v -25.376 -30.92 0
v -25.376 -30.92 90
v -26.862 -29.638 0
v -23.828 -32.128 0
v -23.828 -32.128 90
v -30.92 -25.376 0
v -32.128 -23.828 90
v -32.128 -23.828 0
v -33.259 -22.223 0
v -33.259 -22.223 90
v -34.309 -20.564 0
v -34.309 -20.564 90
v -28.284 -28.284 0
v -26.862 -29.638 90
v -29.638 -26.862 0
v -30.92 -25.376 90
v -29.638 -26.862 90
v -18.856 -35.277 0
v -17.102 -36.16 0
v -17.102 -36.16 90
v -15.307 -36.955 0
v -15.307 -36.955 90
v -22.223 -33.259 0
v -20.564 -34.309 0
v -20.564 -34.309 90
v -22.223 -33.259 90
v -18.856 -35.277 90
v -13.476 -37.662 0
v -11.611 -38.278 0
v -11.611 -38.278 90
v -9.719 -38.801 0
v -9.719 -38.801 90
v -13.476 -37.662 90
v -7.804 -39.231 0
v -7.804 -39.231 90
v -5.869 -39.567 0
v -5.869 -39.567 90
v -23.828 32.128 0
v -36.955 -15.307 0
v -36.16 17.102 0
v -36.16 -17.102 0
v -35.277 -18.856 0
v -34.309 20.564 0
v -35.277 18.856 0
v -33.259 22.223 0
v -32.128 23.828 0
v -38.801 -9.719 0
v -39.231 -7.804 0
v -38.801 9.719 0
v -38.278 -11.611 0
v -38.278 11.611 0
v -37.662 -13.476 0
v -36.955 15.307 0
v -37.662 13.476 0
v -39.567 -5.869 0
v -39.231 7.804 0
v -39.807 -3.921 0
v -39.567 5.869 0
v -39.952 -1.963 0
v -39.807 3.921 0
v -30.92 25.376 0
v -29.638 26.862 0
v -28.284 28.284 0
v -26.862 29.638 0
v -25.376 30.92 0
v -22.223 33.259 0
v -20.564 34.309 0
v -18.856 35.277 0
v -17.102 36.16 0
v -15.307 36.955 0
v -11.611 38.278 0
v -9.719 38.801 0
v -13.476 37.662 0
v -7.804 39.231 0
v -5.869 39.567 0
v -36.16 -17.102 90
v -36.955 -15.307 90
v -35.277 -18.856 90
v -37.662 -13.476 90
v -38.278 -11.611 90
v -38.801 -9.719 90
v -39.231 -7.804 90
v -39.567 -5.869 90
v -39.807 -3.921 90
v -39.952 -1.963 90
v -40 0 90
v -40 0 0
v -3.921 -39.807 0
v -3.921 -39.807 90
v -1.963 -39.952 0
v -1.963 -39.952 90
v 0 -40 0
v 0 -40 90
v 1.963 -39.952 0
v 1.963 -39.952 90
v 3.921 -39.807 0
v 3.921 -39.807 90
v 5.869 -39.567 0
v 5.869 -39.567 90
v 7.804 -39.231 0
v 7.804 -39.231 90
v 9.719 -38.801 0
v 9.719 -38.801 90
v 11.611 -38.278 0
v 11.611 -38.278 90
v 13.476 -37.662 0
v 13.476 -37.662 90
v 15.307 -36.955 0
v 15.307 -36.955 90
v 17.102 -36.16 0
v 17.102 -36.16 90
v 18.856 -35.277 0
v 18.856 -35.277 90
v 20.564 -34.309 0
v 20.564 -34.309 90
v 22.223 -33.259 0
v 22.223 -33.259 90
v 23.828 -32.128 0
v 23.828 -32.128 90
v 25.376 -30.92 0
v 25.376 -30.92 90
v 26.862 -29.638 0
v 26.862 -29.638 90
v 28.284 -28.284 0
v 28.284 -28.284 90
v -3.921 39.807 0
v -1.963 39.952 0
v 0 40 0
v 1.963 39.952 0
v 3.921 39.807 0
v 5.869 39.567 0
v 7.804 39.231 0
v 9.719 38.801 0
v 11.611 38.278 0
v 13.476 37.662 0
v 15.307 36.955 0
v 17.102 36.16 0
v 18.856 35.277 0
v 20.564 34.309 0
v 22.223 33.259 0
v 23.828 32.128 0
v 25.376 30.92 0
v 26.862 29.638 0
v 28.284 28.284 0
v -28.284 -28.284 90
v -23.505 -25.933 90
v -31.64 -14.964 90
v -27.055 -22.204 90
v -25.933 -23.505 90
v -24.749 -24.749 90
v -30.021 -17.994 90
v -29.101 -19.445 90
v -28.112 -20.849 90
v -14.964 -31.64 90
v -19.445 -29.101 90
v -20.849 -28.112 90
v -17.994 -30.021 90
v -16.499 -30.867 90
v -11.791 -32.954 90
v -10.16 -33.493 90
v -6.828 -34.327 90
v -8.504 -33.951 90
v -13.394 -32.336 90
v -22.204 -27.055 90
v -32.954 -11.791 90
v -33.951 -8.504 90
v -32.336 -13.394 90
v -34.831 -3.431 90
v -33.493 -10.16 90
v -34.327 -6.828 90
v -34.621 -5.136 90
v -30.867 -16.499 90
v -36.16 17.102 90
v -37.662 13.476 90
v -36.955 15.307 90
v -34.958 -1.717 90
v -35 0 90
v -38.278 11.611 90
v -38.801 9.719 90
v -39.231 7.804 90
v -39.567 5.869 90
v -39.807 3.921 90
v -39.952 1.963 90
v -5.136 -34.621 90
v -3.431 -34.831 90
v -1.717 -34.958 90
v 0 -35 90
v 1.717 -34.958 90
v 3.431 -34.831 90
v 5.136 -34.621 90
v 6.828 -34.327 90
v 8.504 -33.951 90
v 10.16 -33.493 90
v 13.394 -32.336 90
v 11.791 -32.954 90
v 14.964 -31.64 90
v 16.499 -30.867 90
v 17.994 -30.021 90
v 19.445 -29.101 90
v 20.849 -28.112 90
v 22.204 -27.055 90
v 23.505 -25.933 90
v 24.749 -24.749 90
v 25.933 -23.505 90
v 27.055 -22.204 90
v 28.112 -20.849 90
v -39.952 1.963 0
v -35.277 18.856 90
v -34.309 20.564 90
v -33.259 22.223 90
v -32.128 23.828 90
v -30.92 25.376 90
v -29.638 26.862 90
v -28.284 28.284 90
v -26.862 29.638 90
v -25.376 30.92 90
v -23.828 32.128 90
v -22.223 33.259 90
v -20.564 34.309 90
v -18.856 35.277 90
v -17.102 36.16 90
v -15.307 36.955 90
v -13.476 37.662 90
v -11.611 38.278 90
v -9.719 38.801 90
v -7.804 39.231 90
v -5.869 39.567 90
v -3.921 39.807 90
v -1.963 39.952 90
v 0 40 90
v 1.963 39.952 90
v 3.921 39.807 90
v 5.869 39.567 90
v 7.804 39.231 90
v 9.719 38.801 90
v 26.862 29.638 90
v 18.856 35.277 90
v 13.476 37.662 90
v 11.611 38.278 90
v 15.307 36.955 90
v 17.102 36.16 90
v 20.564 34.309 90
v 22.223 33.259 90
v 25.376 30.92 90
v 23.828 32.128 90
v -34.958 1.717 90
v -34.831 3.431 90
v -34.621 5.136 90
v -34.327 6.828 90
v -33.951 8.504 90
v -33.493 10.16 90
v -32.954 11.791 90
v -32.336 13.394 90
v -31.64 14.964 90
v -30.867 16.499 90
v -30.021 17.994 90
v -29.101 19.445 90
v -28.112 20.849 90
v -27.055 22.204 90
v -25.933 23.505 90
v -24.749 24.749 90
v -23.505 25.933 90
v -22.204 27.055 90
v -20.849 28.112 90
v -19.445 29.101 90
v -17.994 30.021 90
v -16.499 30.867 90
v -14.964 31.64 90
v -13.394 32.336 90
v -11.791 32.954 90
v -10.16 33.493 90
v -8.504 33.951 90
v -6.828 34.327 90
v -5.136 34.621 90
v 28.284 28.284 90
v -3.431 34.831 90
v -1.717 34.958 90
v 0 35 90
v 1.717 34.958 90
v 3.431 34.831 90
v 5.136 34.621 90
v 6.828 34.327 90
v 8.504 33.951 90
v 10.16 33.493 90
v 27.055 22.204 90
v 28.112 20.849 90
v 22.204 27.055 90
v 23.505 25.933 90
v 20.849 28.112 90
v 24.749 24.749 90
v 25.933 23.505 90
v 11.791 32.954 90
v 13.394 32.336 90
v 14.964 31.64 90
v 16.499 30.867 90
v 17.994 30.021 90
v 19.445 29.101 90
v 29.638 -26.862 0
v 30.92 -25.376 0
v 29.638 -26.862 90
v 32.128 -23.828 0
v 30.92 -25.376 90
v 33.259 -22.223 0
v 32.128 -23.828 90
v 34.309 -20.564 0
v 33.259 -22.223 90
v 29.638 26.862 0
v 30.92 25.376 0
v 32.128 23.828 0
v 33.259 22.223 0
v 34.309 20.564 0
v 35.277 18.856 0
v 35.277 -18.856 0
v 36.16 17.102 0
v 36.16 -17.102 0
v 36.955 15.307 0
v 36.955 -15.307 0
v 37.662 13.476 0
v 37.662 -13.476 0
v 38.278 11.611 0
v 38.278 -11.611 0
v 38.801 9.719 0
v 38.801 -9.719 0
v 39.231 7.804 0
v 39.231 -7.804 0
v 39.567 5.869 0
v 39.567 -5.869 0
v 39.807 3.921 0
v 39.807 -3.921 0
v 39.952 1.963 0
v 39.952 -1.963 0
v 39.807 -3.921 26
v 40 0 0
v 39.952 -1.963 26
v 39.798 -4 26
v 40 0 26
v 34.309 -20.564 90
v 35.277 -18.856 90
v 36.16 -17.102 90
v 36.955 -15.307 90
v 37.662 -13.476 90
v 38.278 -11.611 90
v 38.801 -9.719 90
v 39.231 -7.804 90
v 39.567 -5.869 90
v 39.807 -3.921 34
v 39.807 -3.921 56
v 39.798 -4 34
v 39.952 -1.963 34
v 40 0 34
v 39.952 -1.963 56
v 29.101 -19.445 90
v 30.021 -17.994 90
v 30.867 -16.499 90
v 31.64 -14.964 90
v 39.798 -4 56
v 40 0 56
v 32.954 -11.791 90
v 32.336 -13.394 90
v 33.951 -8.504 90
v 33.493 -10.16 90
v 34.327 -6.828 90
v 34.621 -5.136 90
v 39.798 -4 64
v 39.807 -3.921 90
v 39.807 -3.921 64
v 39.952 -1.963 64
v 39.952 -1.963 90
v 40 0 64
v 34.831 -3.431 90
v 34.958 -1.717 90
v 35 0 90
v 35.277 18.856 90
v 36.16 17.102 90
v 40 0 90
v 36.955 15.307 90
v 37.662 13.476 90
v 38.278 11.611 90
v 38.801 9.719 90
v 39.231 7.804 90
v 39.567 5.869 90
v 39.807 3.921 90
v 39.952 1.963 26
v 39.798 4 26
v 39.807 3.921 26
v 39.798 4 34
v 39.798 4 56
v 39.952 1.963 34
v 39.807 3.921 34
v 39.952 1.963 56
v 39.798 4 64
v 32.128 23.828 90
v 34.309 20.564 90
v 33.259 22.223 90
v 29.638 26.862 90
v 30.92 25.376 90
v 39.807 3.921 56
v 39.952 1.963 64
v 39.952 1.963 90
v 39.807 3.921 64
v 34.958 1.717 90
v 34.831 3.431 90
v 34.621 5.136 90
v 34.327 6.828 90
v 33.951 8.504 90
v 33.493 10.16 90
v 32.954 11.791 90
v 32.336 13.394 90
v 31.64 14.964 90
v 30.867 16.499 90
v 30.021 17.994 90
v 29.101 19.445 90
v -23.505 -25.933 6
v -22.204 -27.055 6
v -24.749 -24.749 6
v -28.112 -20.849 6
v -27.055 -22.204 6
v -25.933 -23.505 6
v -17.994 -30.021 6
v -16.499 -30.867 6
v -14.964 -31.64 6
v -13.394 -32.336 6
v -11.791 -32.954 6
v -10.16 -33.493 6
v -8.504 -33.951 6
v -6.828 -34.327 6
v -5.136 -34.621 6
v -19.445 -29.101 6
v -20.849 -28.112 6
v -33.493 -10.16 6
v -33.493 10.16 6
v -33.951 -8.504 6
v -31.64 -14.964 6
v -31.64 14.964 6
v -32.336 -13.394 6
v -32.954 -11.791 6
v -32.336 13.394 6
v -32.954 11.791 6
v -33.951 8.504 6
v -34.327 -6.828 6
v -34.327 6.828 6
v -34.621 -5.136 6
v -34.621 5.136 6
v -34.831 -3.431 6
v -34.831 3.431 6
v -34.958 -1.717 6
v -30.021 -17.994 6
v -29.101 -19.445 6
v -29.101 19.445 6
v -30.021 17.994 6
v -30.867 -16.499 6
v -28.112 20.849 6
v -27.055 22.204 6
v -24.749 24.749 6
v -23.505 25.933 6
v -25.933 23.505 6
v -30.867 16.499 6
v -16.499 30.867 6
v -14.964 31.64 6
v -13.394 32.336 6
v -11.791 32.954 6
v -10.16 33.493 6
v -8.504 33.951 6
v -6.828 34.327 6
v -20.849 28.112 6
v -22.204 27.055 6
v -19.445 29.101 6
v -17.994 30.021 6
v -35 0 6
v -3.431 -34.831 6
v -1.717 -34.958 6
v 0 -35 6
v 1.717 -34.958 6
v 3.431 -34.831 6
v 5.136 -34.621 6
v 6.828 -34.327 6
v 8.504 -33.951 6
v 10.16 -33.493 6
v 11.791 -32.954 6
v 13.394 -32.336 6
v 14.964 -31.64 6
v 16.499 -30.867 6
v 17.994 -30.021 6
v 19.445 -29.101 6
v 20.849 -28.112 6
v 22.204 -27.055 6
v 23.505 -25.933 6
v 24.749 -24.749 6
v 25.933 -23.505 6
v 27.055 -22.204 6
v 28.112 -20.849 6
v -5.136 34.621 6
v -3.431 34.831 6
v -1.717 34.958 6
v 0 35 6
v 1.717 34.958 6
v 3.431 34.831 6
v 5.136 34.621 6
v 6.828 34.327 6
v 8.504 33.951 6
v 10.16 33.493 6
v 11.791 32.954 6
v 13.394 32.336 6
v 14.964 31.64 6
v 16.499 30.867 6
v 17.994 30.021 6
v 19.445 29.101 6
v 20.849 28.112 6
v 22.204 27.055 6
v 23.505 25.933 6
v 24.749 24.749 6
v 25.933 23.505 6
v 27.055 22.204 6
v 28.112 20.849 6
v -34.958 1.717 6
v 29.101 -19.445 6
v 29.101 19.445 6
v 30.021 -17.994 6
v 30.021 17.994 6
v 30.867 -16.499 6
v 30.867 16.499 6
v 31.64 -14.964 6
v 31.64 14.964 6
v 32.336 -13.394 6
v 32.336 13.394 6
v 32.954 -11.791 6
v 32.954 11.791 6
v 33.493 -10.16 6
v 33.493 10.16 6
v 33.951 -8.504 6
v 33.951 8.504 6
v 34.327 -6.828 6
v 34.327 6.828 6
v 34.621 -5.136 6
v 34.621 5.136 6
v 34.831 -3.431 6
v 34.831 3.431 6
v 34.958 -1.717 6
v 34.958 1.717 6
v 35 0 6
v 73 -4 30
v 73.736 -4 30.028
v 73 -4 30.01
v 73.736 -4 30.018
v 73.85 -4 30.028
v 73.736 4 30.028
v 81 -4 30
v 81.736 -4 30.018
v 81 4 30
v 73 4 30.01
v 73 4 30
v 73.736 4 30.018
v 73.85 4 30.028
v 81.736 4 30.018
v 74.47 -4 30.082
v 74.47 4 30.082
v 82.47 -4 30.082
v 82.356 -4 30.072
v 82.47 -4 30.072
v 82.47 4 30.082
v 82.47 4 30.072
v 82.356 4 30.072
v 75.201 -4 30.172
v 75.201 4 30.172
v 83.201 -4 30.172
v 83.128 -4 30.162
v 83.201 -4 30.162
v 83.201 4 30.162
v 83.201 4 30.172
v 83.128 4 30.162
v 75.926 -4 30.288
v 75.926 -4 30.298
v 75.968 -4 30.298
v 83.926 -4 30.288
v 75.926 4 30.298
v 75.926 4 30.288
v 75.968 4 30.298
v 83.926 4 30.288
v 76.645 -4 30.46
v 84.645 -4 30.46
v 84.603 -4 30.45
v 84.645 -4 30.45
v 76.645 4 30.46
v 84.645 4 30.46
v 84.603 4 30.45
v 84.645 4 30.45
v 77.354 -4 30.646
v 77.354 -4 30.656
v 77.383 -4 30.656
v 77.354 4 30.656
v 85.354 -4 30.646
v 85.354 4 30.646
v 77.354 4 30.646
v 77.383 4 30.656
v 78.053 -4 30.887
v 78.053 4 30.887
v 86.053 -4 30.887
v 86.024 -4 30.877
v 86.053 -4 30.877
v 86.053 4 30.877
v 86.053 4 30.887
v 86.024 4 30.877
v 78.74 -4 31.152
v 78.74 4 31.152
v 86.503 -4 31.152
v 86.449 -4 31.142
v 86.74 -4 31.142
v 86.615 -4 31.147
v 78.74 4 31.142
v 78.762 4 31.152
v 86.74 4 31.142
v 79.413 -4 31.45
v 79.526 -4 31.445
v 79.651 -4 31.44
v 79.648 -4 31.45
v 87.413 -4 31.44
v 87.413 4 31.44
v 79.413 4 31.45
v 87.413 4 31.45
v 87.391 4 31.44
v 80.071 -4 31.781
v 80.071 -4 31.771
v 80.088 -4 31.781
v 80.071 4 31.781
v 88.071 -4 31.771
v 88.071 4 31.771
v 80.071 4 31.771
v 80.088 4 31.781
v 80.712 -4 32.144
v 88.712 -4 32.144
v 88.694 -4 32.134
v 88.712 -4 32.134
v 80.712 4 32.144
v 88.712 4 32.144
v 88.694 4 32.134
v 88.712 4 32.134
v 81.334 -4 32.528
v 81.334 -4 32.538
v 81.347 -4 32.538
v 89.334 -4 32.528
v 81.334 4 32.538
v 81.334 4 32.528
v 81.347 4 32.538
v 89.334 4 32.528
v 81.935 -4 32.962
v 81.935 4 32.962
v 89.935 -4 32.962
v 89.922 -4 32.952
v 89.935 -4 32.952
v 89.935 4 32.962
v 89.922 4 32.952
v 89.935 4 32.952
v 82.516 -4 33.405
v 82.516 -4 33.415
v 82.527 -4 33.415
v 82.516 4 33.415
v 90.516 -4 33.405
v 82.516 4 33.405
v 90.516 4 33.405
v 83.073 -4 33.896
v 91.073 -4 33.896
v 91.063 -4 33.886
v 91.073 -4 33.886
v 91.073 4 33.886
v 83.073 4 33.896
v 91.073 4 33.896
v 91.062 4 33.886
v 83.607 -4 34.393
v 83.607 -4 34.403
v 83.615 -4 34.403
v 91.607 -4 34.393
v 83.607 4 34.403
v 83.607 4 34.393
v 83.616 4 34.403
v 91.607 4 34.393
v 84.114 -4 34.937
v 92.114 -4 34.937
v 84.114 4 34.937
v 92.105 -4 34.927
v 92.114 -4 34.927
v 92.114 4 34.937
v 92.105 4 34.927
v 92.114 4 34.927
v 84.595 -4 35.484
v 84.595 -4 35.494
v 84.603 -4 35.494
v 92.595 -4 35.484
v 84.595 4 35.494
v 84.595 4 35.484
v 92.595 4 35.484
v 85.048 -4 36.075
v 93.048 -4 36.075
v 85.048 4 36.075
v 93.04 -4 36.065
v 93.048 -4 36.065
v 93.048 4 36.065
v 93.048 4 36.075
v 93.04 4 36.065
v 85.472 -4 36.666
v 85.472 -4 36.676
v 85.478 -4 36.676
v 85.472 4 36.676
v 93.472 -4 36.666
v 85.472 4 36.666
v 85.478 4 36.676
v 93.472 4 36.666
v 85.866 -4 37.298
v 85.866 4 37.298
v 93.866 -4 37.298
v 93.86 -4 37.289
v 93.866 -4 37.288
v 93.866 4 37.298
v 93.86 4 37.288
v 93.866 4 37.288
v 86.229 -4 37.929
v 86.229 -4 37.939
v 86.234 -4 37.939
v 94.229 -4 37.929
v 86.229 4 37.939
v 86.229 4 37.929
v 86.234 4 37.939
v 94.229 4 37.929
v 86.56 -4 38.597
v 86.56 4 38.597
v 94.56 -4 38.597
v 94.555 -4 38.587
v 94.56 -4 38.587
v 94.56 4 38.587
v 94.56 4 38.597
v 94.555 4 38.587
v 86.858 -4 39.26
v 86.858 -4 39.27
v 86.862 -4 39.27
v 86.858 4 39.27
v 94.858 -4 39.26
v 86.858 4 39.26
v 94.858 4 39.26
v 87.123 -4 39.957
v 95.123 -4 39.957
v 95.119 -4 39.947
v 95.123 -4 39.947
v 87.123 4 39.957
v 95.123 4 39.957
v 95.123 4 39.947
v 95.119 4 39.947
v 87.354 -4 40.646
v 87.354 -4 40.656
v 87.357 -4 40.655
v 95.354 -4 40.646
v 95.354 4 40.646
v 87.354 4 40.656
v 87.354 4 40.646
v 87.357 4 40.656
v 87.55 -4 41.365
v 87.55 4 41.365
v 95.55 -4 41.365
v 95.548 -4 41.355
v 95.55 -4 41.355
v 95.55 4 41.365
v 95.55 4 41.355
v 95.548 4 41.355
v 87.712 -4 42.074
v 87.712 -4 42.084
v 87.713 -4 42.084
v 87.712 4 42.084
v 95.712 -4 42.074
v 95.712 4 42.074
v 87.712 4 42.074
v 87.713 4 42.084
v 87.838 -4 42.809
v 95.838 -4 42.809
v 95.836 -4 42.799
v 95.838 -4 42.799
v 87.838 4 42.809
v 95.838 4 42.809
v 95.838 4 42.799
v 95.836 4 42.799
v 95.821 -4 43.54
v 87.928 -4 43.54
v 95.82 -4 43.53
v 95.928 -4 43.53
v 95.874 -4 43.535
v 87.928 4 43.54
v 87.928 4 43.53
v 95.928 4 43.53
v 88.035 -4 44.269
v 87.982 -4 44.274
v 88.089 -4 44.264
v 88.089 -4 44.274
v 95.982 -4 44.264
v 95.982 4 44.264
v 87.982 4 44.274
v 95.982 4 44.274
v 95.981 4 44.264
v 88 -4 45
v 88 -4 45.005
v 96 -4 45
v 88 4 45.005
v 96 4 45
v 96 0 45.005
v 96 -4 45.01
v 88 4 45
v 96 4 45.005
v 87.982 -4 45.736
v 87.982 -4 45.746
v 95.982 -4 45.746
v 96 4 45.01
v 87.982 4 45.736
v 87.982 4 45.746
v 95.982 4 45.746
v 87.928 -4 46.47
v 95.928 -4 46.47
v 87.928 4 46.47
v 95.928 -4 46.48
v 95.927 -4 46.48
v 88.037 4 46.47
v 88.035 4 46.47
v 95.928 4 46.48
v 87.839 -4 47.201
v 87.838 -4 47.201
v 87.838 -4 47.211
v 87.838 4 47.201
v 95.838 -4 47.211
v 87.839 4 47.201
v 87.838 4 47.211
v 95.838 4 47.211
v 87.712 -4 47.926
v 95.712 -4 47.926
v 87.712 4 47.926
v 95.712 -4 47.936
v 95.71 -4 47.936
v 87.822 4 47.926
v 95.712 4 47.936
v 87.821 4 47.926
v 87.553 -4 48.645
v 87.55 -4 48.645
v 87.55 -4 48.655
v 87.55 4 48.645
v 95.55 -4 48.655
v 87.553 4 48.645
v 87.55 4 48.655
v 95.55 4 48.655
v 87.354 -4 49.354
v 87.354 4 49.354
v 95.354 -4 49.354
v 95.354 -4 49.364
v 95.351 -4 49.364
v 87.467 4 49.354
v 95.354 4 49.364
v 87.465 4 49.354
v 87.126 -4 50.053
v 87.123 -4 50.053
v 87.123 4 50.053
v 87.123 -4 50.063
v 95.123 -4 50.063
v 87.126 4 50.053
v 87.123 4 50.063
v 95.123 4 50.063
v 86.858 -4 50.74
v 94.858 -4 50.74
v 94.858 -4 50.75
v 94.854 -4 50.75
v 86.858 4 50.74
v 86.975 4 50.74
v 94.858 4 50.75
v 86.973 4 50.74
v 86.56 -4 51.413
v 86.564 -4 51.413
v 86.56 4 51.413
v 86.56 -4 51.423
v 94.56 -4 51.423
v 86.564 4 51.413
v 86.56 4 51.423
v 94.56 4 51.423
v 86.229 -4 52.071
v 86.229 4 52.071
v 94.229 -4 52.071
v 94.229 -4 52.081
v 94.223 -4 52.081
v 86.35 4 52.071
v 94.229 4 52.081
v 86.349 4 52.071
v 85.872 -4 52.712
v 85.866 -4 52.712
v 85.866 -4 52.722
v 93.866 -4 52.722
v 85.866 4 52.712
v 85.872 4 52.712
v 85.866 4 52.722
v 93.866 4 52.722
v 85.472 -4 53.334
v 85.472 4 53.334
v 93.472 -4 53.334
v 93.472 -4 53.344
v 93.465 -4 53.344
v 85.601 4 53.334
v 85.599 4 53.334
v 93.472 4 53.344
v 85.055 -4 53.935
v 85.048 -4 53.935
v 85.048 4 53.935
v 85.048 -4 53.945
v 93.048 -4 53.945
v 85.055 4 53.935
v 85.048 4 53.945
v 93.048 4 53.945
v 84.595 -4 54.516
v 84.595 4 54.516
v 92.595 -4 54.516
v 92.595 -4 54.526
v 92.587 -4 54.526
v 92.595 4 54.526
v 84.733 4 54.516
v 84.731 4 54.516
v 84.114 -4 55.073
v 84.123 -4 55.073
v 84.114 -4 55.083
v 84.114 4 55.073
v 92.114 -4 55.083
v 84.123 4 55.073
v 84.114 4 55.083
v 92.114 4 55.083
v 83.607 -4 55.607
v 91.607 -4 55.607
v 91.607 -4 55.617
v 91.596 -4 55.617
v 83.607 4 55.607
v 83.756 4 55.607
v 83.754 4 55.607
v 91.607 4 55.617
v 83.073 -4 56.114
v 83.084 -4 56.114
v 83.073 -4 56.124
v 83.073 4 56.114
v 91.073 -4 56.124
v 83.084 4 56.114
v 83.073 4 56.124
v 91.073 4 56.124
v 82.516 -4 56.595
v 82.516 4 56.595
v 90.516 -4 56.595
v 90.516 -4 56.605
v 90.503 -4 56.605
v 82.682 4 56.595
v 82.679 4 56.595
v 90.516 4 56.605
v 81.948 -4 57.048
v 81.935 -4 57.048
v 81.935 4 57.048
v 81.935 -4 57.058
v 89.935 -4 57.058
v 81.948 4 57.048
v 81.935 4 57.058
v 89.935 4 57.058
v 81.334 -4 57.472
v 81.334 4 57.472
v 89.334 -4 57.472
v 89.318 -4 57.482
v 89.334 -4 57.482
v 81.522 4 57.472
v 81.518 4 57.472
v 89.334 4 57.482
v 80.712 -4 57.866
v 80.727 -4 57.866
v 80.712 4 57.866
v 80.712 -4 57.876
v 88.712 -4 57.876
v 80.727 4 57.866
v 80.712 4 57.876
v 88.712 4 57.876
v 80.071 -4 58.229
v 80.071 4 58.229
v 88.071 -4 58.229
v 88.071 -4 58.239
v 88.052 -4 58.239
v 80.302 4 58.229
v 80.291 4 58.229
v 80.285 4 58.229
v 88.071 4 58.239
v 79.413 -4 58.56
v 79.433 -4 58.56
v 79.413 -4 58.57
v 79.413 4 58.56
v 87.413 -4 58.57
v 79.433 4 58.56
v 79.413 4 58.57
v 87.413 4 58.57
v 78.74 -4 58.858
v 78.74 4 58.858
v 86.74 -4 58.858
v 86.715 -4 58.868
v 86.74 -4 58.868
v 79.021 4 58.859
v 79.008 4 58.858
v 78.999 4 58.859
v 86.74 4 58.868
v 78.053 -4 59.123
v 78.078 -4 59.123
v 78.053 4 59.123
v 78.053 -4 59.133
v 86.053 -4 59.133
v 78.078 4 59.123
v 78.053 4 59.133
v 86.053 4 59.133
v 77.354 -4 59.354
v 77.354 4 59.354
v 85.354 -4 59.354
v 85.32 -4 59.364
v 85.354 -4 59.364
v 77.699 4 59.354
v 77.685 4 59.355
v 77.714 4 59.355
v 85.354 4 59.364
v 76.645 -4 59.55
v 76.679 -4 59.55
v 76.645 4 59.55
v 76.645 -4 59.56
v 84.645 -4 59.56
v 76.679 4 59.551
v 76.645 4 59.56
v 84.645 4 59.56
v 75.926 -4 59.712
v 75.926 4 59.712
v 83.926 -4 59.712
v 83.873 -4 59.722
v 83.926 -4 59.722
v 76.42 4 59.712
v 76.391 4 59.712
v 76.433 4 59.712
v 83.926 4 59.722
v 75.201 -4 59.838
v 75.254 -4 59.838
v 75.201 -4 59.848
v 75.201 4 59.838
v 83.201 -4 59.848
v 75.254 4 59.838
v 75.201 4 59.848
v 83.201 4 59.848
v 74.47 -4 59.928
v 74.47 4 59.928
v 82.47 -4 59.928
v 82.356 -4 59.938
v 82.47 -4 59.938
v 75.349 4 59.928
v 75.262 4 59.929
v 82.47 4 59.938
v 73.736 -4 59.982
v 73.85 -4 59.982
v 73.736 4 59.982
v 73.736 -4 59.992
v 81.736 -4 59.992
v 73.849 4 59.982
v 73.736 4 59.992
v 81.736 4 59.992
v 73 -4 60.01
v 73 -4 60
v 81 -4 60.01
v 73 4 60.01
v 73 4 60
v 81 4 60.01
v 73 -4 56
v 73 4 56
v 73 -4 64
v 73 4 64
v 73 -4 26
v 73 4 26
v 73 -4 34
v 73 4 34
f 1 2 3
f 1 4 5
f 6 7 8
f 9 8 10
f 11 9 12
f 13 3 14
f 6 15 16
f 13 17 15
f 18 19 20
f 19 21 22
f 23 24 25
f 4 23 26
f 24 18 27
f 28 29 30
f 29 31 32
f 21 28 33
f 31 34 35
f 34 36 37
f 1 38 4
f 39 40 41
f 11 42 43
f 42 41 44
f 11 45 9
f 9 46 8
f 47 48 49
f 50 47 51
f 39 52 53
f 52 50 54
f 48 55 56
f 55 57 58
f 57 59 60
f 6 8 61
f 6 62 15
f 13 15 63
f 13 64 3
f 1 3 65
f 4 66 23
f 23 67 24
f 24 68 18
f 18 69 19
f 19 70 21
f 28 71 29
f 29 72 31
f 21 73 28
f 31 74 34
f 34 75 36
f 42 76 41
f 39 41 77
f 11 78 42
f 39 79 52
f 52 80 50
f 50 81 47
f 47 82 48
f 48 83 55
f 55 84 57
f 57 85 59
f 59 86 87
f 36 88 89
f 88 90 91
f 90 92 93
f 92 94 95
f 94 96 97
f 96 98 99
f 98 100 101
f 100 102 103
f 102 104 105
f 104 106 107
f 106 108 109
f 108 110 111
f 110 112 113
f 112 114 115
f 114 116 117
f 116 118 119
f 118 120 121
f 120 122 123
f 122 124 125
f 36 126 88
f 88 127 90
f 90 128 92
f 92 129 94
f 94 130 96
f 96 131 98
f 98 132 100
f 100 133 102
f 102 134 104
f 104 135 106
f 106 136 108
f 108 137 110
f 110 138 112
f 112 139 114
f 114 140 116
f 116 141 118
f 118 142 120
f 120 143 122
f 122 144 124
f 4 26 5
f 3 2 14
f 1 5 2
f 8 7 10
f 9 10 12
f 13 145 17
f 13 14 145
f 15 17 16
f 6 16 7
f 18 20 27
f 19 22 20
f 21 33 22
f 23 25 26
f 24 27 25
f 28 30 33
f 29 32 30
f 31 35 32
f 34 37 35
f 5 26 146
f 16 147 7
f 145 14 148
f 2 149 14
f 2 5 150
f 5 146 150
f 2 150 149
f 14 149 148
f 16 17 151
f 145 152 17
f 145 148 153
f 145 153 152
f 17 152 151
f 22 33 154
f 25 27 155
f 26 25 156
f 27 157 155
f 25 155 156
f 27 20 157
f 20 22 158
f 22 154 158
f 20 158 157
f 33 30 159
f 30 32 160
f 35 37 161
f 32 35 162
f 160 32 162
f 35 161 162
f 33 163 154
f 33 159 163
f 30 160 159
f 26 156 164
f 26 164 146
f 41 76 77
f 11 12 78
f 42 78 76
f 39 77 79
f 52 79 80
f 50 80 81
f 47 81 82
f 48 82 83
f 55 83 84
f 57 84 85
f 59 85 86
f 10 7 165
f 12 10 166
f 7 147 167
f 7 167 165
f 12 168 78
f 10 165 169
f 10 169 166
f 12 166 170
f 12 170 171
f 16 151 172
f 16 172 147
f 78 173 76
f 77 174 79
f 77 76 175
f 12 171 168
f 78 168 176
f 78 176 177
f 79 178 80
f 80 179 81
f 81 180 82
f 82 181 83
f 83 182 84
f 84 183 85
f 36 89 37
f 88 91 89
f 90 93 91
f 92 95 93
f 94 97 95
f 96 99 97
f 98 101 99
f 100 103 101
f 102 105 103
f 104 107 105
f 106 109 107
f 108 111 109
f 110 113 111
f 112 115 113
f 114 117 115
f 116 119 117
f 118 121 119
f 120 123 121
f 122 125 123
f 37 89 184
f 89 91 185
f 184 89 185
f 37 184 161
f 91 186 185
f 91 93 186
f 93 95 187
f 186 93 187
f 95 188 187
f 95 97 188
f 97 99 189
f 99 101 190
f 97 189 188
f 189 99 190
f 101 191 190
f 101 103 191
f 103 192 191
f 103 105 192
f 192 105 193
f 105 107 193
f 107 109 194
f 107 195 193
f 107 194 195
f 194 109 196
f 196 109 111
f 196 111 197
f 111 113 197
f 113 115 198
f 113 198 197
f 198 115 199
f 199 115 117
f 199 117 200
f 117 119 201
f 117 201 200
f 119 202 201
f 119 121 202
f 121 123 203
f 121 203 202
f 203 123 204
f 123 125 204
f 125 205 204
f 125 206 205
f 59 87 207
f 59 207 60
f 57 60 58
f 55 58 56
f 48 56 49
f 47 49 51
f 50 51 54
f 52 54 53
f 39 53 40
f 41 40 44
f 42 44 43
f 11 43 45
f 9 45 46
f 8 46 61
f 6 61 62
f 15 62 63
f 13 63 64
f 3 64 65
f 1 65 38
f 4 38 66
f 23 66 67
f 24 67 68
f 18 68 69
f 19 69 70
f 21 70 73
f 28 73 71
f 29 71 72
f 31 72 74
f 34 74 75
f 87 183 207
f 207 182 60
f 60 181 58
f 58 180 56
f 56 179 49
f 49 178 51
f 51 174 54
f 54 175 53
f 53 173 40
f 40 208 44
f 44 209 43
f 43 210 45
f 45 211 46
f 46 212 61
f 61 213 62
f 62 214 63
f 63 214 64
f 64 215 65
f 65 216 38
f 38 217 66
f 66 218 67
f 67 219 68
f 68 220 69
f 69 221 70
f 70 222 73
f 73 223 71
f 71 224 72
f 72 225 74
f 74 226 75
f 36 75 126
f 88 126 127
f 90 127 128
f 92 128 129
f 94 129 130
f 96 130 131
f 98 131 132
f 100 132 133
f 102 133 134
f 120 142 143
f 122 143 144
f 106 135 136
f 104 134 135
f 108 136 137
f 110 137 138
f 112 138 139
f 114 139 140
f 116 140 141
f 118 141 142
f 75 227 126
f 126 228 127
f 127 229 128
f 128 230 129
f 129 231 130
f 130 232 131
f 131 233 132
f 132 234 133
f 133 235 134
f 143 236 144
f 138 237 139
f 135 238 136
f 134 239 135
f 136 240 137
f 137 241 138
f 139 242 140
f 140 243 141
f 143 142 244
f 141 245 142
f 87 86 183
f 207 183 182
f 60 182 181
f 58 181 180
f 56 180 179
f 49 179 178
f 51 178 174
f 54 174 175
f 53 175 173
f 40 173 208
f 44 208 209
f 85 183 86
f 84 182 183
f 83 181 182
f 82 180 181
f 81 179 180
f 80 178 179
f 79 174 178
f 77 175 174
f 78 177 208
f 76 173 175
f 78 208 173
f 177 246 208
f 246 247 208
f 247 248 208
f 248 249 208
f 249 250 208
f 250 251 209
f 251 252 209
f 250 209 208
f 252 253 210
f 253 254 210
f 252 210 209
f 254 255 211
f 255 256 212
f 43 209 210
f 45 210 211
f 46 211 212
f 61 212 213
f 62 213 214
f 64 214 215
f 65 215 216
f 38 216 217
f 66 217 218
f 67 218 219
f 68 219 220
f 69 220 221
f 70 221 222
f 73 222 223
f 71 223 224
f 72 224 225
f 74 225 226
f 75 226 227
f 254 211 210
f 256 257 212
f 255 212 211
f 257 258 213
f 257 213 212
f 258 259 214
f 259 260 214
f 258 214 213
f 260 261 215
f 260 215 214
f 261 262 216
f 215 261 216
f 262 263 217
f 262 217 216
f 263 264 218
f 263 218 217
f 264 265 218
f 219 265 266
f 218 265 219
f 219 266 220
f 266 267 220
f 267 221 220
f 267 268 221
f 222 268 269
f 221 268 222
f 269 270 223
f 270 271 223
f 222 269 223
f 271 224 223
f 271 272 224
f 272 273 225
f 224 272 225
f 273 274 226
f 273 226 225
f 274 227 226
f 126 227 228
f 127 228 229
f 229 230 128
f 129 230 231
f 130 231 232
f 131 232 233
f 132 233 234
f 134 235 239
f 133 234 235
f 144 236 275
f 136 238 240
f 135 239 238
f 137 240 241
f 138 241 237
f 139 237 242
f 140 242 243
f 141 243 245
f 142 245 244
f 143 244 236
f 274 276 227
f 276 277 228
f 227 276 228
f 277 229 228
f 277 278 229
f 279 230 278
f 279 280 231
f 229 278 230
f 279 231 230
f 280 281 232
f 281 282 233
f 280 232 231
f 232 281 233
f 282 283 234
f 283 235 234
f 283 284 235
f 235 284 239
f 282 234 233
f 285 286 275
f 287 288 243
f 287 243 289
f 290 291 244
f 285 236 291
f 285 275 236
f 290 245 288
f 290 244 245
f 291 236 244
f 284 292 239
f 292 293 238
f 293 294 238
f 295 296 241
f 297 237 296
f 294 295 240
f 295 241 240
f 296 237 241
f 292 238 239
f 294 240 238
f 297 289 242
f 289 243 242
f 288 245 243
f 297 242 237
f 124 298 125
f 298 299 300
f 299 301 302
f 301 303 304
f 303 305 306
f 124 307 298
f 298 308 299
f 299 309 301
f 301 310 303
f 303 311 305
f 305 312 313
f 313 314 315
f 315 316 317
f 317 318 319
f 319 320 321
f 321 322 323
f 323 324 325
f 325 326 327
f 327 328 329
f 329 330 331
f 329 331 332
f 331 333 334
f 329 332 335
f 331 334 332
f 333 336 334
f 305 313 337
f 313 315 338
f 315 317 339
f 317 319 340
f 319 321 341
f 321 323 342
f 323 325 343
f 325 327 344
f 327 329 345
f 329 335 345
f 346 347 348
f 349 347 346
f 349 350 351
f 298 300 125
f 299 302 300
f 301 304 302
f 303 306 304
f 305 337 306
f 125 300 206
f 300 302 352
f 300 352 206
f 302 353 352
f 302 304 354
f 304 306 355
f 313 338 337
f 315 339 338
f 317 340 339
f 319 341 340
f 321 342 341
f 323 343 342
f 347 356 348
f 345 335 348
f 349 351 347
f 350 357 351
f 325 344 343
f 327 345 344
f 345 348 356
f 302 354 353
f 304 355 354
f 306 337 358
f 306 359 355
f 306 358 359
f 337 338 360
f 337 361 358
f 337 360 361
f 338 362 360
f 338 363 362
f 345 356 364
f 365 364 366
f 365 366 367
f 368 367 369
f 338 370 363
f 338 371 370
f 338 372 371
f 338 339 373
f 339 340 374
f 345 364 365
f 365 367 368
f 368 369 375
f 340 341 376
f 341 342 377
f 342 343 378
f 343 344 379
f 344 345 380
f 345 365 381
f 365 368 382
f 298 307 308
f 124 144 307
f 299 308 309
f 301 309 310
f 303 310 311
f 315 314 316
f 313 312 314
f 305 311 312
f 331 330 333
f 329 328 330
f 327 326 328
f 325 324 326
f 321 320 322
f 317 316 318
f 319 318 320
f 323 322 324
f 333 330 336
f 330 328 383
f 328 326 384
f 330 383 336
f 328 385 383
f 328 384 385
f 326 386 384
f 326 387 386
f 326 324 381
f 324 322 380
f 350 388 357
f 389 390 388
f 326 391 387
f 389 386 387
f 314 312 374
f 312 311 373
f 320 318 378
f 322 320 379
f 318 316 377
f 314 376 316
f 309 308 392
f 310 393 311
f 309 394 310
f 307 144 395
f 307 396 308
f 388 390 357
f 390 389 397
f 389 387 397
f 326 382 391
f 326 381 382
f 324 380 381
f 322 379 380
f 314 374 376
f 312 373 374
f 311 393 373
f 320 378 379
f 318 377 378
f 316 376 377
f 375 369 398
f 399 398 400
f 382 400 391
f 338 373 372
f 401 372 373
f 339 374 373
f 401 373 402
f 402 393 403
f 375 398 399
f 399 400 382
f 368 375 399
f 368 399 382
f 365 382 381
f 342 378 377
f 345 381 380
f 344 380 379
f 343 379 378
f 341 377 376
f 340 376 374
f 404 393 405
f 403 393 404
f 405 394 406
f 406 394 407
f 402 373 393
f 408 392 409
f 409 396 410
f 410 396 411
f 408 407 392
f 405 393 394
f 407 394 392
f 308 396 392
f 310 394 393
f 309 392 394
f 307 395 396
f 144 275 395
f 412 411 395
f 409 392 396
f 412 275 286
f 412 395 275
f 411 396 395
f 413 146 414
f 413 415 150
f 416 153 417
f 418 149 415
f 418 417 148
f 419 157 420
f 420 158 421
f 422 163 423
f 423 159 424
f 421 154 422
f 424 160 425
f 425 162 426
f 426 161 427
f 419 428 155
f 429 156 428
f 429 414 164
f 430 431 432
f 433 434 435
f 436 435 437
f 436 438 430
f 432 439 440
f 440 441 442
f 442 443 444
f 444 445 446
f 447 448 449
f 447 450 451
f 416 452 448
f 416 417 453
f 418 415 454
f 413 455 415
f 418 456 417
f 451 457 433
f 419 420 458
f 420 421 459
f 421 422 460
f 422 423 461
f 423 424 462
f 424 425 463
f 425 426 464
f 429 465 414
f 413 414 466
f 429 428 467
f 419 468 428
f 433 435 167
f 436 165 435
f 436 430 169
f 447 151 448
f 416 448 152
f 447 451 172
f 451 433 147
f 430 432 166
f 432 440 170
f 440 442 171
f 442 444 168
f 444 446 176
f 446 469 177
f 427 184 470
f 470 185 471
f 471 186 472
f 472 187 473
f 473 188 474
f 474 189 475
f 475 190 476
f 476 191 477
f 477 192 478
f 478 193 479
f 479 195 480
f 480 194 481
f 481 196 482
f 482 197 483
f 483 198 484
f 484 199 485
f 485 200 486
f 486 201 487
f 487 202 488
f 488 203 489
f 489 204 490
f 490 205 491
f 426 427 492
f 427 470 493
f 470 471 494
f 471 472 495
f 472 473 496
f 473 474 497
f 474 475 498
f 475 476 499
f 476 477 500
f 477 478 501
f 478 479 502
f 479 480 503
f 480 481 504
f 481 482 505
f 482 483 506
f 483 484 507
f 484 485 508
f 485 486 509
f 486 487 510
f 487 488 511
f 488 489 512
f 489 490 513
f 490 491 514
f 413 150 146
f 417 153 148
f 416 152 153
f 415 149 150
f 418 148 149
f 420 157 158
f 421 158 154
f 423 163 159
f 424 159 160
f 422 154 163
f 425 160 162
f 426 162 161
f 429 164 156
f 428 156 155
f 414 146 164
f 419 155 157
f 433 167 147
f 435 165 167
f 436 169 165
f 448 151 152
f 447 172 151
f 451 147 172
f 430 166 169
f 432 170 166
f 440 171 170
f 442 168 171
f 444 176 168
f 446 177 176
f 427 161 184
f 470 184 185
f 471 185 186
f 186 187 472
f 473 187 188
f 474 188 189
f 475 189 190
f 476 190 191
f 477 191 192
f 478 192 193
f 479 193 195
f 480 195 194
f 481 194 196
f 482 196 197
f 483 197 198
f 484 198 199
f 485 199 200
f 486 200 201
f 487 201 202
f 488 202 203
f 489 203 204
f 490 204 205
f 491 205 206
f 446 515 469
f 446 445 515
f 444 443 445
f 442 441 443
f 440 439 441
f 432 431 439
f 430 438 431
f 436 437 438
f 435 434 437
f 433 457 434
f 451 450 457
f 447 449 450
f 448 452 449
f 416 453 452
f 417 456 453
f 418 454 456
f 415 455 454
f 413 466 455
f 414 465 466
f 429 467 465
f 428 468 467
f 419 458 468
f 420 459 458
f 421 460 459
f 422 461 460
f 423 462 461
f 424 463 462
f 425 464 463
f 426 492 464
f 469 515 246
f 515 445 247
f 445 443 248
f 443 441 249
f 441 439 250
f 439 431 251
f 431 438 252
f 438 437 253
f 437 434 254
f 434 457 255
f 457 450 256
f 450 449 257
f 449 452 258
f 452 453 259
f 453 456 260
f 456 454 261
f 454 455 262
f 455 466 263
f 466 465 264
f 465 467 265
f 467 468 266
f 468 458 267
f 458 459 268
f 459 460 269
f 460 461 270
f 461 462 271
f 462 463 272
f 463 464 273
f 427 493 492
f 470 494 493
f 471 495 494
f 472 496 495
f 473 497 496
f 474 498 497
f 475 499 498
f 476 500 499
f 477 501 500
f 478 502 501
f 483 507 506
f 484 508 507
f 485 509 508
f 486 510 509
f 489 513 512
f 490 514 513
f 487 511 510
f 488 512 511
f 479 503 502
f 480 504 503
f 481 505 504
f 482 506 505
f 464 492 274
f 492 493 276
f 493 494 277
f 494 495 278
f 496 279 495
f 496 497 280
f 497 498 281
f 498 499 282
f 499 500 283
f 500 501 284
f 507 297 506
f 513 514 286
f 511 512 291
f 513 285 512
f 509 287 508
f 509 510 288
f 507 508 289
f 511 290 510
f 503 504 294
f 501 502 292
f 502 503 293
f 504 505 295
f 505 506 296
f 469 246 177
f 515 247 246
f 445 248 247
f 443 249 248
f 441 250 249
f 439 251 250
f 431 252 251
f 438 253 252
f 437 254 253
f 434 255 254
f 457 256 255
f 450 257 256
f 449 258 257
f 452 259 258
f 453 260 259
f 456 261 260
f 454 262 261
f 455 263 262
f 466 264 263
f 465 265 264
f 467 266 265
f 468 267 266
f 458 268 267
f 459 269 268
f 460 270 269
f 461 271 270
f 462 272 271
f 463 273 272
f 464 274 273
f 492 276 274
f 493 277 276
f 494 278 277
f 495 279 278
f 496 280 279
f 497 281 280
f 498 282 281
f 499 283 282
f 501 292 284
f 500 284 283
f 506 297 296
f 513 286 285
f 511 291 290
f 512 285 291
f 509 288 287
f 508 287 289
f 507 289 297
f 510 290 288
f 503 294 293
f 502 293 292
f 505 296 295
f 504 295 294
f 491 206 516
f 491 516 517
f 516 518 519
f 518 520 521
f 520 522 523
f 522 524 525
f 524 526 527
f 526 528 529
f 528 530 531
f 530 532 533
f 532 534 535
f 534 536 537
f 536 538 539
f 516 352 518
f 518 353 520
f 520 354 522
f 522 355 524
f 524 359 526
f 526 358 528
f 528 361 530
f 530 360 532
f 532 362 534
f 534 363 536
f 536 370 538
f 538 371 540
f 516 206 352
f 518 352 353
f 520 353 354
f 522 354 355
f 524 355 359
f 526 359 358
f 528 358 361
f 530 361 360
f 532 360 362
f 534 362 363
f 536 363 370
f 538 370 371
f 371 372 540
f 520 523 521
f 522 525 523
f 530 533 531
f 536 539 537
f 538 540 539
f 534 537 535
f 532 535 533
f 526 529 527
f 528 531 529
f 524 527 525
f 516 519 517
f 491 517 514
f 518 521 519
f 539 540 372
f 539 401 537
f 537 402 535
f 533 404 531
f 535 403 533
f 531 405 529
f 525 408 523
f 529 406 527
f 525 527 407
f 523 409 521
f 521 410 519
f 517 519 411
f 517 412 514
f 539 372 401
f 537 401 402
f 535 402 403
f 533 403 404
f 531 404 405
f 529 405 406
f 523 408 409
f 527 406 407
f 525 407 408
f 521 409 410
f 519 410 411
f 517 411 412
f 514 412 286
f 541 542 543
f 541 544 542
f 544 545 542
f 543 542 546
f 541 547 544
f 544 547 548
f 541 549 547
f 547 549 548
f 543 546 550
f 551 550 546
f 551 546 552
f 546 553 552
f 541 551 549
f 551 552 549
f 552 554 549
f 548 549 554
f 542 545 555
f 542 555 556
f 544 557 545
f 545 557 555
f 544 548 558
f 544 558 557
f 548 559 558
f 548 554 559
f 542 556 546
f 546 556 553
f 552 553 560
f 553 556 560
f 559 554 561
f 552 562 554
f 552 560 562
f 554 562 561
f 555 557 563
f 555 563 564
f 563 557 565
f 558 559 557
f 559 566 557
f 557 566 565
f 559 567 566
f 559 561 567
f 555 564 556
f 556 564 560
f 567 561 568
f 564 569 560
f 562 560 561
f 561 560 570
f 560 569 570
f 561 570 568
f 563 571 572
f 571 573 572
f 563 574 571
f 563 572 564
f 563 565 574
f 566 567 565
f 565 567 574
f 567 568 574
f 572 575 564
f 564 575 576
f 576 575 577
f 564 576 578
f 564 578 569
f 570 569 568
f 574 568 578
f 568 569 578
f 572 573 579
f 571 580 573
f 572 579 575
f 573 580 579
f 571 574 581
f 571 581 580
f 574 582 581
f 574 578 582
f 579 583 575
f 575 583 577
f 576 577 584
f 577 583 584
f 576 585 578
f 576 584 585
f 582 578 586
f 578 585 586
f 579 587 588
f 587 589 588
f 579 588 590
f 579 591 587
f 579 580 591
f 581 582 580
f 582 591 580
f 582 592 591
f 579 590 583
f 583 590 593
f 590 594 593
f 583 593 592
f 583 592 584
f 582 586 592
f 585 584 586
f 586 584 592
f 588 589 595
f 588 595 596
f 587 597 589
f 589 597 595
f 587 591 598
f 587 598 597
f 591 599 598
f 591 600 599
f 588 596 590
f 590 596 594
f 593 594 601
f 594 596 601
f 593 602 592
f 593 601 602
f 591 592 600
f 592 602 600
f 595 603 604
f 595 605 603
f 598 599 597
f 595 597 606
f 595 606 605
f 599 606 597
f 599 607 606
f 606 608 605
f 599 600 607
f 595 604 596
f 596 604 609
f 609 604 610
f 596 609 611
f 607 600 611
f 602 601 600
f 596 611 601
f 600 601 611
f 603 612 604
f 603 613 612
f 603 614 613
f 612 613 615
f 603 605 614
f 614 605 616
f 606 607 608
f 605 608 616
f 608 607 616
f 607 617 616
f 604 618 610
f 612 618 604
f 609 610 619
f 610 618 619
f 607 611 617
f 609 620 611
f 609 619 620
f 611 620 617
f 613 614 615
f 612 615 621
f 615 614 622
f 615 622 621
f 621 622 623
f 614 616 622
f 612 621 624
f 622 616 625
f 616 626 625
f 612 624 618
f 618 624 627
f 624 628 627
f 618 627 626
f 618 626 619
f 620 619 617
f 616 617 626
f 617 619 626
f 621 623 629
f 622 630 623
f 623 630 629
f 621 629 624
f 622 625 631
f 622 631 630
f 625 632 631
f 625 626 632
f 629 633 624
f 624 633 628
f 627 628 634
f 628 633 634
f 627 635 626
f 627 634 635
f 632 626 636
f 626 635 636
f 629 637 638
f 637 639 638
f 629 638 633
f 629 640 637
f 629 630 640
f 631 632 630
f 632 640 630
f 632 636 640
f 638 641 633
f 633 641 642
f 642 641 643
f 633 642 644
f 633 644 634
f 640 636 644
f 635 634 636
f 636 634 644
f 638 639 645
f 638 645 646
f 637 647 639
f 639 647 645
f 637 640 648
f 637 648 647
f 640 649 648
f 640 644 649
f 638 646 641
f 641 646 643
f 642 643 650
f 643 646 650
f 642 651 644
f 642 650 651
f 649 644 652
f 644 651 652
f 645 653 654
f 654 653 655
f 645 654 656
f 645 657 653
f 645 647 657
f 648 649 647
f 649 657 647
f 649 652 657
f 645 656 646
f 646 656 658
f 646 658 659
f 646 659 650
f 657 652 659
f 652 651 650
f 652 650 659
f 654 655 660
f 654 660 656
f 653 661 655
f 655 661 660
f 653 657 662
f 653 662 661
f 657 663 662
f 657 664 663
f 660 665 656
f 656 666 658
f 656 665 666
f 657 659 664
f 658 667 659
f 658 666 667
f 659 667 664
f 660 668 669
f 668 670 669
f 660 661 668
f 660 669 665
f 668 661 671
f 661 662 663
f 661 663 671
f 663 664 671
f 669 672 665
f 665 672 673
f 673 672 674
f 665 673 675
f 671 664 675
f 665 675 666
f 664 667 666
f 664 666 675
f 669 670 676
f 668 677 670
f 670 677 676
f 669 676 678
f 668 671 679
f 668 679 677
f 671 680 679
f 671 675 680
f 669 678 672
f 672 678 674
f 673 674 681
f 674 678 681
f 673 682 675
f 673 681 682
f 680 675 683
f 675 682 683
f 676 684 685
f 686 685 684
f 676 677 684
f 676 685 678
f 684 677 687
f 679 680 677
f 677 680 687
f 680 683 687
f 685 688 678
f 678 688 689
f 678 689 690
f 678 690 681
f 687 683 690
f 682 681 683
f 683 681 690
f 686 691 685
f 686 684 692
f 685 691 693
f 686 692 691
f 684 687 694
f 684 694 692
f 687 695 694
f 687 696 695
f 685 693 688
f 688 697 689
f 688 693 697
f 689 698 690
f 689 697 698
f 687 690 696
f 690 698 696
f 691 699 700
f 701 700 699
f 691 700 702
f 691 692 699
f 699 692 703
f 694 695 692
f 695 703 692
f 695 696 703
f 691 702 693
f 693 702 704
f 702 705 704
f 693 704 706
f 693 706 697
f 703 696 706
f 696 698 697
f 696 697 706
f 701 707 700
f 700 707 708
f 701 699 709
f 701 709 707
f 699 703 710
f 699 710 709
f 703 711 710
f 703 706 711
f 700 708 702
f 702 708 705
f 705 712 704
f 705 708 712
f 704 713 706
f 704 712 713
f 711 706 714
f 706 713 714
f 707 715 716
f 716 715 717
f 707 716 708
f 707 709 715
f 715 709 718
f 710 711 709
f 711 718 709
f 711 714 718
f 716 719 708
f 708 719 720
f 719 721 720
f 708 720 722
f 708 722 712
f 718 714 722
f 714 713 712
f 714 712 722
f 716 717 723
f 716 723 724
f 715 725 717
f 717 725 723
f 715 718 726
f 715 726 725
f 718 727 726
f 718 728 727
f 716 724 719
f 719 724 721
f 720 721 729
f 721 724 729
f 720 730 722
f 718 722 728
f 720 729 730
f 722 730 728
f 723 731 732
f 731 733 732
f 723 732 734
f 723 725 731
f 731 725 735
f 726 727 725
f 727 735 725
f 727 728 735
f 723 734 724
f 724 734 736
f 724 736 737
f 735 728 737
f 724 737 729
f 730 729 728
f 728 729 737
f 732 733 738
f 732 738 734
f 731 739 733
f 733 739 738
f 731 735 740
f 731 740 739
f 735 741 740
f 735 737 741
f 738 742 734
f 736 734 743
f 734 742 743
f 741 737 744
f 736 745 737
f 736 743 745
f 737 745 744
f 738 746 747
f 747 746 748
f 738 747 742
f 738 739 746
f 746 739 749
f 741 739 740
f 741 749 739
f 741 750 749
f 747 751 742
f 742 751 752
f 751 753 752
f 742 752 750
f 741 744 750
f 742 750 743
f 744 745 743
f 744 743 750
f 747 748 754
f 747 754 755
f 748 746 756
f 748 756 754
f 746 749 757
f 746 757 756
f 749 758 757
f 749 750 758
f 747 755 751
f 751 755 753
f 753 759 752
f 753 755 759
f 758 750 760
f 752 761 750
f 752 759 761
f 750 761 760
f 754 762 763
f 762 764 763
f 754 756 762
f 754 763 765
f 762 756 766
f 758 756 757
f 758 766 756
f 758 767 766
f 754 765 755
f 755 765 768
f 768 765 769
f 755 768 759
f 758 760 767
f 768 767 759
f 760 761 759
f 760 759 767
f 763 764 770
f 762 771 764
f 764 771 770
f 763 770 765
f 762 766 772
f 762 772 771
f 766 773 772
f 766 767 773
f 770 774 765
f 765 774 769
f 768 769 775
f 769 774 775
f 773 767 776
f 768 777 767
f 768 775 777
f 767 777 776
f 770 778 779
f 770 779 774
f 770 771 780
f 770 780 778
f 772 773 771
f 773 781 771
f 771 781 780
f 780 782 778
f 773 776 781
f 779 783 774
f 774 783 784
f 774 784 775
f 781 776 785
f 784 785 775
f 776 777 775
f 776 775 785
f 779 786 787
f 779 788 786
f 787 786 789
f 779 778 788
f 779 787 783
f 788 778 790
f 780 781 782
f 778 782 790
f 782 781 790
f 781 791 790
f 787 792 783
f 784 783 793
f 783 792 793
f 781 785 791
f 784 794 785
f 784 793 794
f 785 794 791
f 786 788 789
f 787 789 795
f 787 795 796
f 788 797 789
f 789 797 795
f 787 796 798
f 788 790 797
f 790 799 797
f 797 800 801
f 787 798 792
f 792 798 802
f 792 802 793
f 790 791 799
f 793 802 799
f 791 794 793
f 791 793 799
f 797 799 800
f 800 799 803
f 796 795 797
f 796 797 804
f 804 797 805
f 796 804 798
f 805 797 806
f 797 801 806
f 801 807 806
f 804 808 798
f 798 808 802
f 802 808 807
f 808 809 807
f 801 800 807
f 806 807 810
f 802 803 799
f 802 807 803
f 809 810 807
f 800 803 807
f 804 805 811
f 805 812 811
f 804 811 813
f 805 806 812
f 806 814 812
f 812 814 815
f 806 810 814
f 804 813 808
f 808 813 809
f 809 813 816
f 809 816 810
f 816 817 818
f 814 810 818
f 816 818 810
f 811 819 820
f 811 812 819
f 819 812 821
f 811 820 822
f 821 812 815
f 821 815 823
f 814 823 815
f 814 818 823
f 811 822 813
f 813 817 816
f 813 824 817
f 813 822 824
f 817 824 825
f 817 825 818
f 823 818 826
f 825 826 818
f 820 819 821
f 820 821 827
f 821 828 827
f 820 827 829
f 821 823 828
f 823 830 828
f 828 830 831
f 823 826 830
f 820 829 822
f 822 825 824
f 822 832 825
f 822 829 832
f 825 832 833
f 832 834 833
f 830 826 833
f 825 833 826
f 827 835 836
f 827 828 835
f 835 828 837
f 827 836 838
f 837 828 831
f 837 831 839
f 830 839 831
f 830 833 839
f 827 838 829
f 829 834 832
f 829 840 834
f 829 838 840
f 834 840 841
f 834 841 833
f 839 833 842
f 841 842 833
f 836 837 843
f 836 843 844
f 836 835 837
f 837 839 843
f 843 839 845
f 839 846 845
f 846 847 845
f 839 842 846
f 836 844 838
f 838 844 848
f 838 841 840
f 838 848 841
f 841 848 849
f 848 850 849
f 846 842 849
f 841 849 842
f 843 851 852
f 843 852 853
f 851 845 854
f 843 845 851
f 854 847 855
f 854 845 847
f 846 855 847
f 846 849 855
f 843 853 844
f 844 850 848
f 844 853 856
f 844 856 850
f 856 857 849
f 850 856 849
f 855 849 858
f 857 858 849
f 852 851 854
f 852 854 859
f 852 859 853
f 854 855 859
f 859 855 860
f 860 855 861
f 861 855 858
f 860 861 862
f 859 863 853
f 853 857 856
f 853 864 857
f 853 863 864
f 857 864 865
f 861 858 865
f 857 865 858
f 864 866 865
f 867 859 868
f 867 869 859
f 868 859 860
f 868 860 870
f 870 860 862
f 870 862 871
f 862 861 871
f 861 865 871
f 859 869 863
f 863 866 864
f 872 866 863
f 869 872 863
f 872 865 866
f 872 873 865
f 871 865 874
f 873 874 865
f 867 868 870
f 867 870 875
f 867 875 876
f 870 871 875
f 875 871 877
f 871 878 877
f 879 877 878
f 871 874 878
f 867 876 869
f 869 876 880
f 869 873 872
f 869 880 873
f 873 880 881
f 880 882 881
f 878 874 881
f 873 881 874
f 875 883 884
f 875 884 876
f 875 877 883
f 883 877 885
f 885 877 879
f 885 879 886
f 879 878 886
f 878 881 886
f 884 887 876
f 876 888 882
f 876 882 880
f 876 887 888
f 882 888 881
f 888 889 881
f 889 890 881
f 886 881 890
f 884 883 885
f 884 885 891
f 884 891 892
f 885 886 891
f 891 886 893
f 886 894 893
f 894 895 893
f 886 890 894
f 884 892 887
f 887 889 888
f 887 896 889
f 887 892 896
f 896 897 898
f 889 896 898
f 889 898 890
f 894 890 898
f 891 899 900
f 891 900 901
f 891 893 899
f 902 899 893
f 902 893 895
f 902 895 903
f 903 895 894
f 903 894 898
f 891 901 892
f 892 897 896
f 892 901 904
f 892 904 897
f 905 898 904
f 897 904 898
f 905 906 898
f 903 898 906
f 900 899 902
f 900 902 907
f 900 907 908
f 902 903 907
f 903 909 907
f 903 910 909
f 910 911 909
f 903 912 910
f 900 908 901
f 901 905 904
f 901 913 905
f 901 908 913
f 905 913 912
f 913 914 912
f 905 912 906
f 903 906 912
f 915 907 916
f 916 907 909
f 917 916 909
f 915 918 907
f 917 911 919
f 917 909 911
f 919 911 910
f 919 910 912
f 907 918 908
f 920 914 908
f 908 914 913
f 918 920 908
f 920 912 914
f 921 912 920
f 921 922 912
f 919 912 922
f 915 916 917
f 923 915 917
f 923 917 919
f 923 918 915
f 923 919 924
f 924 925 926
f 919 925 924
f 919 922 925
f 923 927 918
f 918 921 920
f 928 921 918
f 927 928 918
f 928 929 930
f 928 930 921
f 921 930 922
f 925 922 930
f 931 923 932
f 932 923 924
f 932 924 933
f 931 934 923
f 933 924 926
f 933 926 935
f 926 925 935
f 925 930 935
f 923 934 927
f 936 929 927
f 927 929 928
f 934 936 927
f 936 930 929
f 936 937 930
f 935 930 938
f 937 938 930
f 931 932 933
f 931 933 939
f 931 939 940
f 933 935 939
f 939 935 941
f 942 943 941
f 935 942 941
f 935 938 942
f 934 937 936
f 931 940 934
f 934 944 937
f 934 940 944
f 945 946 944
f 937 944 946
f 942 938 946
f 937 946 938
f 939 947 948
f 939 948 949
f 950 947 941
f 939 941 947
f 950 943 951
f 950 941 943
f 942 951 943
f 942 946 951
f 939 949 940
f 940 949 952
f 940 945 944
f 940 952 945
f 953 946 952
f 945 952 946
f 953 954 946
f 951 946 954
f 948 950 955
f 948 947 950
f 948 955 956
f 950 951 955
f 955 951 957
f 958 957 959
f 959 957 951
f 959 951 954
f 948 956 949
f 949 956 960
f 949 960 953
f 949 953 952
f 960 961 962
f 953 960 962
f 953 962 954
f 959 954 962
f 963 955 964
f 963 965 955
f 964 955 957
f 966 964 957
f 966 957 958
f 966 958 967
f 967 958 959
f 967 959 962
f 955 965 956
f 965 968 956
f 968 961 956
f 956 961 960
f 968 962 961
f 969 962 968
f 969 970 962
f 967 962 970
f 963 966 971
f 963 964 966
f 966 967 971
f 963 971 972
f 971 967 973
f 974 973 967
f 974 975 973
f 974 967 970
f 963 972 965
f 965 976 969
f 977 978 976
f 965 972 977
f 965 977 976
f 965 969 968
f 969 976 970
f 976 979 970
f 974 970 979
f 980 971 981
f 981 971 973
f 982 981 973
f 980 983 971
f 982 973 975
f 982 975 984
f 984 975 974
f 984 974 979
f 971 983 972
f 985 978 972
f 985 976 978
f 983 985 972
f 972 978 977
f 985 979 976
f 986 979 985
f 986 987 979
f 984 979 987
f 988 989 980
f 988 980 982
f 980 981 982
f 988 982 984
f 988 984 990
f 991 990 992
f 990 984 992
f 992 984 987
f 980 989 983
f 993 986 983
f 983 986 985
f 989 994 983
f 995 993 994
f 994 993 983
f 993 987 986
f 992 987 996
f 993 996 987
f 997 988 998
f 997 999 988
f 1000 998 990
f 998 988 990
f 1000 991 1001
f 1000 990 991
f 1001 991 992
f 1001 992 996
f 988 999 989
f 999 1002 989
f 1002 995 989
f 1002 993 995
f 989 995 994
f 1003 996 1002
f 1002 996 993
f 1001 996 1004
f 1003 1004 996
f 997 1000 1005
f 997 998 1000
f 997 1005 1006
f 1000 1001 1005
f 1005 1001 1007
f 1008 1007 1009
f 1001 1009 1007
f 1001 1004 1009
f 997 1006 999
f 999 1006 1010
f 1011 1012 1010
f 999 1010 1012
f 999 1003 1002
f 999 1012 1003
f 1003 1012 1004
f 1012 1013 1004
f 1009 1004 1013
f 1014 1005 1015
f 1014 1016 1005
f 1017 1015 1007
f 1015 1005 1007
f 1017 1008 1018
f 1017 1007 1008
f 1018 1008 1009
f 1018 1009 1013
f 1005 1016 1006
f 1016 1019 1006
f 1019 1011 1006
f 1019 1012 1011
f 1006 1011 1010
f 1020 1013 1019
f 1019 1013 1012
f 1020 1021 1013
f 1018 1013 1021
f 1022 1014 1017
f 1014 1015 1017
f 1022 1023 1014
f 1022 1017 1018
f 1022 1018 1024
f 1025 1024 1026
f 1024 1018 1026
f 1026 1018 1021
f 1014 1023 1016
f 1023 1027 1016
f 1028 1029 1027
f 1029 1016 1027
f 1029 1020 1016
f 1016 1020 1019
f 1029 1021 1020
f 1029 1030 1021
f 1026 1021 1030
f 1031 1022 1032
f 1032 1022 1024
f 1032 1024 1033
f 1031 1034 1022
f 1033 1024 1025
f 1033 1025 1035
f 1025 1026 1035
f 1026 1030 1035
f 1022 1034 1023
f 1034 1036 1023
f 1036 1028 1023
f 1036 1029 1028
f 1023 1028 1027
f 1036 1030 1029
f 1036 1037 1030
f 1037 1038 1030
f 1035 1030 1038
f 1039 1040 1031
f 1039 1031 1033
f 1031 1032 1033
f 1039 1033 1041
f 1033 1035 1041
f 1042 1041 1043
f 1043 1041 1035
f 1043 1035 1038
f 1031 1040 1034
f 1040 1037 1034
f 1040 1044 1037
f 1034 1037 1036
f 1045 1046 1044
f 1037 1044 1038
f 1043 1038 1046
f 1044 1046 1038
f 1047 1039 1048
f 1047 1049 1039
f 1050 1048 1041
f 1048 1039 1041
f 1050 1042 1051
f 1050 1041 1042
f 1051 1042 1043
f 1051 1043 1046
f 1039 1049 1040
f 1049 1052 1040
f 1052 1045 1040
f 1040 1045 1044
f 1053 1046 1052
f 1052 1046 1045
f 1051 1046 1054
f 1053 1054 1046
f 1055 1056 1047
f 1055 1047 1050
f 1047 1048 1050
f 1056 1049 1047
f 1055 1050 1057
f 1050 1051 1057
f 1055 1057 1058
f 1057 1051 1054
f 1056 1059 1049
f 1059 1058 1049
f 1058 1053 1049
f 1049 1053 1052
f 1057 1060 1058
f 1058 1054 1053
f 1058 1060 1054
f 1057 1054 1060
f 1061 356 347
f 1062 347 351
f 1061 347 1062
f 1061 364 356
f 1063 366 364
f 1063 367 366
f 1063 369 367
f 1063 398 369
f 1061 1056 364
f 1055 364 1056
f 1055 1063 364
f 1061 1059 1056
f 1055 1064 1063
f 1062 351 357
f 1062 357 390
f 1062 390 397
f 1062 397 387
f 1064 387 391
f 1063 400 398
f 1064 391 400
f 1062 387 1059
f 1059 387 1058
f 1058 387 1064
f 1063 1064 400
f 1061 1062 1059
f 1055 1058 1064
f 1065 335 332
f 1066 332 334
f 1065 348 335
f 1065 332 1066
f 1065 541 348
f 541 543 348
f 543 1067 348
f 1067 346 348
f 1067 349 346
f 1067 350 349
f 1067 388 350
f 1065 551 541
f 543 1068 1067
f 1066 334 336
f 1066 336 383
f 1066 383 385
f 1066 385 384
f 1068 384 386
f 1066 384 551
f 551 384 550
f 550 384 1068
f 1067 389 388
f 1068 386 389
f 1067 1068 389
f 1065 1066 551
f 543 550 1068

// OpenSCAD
$fn = 128;

outer_r = 40;
inner_r = 35;
mug_h   = 90;
bot_t   = 6;

handle_z    = mug_h / 2;   // 45mm: 高さ方向中央
h_space_h   = 30;          // 取手内側空間 高さ
h_space_w   = 25;          // 取手内側空間 幅
handle_t    = 8;           // 取手の肉厚(断面幅)

// 取手の概念:
//   - 外形: 半円(+X側) + 上下の直線部分(本体に接続)
//   - 内空: 高さ h_space_h x 幅 h_space_w
//   - 本体外壁(X=outer_r)から生える
//
// 構成:
//   1. 上バー: 本体壁からX方向に伸びる直方体
//   2. 下バー: 同上
//   3. 外側半円アーム: 上バーと下バーの外端を繋ぐ半円管
//      半円の中心: (outer_r + handle_t + h_space_w/2 + ... ) を計算
//
// 取手の外側半円:
//   上バー外端 X座標 = outer_r + handle_t + h_space_w
//   上バー Z = handle_z + h_space_h/2
//   下バー Z = handle_z - h_space_h/2
//   半円アームの中心Z = handle_z, 中心X = outer_r + handle_t + h_space_w
//   半円アームの半径 = h_space_h/2 = 15
//   アーム断面 = handle_t x handle_t の正方形断面を rotate_extrude

// 各部寸法
bar_x_start = outer_r - 3;               // 本体に3mm食い込んで確実に結合
bar_x_end   = outer_r + handle_t + h_space_w; // バーの外端X
bar_x_len   = bar_x_end - bar_x_start;
bar_z_top   = handle_z + h_space_h / 2;  // 45+15=60
bar_z_bot   = handle_z - h_space_h / 2;  // 45-15=30
arc_cx      = bar_x_end;                 // 半円中心X
arc_cz      = handle_z;                  // 半円中心Z
arc_r       = h_space_h / 2;             // =15 (半円の回転半径=内空高さ/2)

module handle_bar(z_center) {
    // Y方向に handle_t の幅を持つ直方体バー
    translate([bar_x_start, -handle_t/2, z_center - handle_t/2])
        cube([bar_x_len, handle_t, handle_t]);
}

module handle_arc() {
    // XZ平面内で、(arc_cx, arc_cz) を中心に半円を描く
    // 断面: handle_t x handle_t の正方形
    // +X側の半円(角度 -90° → +90°)
    N = 64;
    for (i = [0 : N-1]) {
        a1 = -90 + 180 * i       / N;
        a2 = -90 + 180 * (i+1)   / N;
        x1 = arc_cx + arc_r * cos(a1);
        z1 = arc_cz + arc_r * sin(a1);
        x2 = arc_cx + arc_r * cos(a2);
        z2 = arc_cz + arc_r * sin(a2);
        hull() {
            translate([x1, -handle_t/2, z1])
                cube([handle_t, handle_t, 0.01]);
            translate([x2, -handle_t/2, z2])
                cube([handle_t, handle_t, 0.01]);
        }
    }
}

module handle() {
    union() {
        handle_bar(bar_z_top);
        handle_bar(bar_z_bot);
        handle_arc();
    }
}

module mug_body() {
    difference() {
        cylinder(r = outer_r, h = mug_h);
        translate([0, 0, bot_t])
            cylinder(r = inner_r, h = mug_h - bot_t + 0.1);
    }
}

// Final model
union() {
    mug_body();
    handle();
}
